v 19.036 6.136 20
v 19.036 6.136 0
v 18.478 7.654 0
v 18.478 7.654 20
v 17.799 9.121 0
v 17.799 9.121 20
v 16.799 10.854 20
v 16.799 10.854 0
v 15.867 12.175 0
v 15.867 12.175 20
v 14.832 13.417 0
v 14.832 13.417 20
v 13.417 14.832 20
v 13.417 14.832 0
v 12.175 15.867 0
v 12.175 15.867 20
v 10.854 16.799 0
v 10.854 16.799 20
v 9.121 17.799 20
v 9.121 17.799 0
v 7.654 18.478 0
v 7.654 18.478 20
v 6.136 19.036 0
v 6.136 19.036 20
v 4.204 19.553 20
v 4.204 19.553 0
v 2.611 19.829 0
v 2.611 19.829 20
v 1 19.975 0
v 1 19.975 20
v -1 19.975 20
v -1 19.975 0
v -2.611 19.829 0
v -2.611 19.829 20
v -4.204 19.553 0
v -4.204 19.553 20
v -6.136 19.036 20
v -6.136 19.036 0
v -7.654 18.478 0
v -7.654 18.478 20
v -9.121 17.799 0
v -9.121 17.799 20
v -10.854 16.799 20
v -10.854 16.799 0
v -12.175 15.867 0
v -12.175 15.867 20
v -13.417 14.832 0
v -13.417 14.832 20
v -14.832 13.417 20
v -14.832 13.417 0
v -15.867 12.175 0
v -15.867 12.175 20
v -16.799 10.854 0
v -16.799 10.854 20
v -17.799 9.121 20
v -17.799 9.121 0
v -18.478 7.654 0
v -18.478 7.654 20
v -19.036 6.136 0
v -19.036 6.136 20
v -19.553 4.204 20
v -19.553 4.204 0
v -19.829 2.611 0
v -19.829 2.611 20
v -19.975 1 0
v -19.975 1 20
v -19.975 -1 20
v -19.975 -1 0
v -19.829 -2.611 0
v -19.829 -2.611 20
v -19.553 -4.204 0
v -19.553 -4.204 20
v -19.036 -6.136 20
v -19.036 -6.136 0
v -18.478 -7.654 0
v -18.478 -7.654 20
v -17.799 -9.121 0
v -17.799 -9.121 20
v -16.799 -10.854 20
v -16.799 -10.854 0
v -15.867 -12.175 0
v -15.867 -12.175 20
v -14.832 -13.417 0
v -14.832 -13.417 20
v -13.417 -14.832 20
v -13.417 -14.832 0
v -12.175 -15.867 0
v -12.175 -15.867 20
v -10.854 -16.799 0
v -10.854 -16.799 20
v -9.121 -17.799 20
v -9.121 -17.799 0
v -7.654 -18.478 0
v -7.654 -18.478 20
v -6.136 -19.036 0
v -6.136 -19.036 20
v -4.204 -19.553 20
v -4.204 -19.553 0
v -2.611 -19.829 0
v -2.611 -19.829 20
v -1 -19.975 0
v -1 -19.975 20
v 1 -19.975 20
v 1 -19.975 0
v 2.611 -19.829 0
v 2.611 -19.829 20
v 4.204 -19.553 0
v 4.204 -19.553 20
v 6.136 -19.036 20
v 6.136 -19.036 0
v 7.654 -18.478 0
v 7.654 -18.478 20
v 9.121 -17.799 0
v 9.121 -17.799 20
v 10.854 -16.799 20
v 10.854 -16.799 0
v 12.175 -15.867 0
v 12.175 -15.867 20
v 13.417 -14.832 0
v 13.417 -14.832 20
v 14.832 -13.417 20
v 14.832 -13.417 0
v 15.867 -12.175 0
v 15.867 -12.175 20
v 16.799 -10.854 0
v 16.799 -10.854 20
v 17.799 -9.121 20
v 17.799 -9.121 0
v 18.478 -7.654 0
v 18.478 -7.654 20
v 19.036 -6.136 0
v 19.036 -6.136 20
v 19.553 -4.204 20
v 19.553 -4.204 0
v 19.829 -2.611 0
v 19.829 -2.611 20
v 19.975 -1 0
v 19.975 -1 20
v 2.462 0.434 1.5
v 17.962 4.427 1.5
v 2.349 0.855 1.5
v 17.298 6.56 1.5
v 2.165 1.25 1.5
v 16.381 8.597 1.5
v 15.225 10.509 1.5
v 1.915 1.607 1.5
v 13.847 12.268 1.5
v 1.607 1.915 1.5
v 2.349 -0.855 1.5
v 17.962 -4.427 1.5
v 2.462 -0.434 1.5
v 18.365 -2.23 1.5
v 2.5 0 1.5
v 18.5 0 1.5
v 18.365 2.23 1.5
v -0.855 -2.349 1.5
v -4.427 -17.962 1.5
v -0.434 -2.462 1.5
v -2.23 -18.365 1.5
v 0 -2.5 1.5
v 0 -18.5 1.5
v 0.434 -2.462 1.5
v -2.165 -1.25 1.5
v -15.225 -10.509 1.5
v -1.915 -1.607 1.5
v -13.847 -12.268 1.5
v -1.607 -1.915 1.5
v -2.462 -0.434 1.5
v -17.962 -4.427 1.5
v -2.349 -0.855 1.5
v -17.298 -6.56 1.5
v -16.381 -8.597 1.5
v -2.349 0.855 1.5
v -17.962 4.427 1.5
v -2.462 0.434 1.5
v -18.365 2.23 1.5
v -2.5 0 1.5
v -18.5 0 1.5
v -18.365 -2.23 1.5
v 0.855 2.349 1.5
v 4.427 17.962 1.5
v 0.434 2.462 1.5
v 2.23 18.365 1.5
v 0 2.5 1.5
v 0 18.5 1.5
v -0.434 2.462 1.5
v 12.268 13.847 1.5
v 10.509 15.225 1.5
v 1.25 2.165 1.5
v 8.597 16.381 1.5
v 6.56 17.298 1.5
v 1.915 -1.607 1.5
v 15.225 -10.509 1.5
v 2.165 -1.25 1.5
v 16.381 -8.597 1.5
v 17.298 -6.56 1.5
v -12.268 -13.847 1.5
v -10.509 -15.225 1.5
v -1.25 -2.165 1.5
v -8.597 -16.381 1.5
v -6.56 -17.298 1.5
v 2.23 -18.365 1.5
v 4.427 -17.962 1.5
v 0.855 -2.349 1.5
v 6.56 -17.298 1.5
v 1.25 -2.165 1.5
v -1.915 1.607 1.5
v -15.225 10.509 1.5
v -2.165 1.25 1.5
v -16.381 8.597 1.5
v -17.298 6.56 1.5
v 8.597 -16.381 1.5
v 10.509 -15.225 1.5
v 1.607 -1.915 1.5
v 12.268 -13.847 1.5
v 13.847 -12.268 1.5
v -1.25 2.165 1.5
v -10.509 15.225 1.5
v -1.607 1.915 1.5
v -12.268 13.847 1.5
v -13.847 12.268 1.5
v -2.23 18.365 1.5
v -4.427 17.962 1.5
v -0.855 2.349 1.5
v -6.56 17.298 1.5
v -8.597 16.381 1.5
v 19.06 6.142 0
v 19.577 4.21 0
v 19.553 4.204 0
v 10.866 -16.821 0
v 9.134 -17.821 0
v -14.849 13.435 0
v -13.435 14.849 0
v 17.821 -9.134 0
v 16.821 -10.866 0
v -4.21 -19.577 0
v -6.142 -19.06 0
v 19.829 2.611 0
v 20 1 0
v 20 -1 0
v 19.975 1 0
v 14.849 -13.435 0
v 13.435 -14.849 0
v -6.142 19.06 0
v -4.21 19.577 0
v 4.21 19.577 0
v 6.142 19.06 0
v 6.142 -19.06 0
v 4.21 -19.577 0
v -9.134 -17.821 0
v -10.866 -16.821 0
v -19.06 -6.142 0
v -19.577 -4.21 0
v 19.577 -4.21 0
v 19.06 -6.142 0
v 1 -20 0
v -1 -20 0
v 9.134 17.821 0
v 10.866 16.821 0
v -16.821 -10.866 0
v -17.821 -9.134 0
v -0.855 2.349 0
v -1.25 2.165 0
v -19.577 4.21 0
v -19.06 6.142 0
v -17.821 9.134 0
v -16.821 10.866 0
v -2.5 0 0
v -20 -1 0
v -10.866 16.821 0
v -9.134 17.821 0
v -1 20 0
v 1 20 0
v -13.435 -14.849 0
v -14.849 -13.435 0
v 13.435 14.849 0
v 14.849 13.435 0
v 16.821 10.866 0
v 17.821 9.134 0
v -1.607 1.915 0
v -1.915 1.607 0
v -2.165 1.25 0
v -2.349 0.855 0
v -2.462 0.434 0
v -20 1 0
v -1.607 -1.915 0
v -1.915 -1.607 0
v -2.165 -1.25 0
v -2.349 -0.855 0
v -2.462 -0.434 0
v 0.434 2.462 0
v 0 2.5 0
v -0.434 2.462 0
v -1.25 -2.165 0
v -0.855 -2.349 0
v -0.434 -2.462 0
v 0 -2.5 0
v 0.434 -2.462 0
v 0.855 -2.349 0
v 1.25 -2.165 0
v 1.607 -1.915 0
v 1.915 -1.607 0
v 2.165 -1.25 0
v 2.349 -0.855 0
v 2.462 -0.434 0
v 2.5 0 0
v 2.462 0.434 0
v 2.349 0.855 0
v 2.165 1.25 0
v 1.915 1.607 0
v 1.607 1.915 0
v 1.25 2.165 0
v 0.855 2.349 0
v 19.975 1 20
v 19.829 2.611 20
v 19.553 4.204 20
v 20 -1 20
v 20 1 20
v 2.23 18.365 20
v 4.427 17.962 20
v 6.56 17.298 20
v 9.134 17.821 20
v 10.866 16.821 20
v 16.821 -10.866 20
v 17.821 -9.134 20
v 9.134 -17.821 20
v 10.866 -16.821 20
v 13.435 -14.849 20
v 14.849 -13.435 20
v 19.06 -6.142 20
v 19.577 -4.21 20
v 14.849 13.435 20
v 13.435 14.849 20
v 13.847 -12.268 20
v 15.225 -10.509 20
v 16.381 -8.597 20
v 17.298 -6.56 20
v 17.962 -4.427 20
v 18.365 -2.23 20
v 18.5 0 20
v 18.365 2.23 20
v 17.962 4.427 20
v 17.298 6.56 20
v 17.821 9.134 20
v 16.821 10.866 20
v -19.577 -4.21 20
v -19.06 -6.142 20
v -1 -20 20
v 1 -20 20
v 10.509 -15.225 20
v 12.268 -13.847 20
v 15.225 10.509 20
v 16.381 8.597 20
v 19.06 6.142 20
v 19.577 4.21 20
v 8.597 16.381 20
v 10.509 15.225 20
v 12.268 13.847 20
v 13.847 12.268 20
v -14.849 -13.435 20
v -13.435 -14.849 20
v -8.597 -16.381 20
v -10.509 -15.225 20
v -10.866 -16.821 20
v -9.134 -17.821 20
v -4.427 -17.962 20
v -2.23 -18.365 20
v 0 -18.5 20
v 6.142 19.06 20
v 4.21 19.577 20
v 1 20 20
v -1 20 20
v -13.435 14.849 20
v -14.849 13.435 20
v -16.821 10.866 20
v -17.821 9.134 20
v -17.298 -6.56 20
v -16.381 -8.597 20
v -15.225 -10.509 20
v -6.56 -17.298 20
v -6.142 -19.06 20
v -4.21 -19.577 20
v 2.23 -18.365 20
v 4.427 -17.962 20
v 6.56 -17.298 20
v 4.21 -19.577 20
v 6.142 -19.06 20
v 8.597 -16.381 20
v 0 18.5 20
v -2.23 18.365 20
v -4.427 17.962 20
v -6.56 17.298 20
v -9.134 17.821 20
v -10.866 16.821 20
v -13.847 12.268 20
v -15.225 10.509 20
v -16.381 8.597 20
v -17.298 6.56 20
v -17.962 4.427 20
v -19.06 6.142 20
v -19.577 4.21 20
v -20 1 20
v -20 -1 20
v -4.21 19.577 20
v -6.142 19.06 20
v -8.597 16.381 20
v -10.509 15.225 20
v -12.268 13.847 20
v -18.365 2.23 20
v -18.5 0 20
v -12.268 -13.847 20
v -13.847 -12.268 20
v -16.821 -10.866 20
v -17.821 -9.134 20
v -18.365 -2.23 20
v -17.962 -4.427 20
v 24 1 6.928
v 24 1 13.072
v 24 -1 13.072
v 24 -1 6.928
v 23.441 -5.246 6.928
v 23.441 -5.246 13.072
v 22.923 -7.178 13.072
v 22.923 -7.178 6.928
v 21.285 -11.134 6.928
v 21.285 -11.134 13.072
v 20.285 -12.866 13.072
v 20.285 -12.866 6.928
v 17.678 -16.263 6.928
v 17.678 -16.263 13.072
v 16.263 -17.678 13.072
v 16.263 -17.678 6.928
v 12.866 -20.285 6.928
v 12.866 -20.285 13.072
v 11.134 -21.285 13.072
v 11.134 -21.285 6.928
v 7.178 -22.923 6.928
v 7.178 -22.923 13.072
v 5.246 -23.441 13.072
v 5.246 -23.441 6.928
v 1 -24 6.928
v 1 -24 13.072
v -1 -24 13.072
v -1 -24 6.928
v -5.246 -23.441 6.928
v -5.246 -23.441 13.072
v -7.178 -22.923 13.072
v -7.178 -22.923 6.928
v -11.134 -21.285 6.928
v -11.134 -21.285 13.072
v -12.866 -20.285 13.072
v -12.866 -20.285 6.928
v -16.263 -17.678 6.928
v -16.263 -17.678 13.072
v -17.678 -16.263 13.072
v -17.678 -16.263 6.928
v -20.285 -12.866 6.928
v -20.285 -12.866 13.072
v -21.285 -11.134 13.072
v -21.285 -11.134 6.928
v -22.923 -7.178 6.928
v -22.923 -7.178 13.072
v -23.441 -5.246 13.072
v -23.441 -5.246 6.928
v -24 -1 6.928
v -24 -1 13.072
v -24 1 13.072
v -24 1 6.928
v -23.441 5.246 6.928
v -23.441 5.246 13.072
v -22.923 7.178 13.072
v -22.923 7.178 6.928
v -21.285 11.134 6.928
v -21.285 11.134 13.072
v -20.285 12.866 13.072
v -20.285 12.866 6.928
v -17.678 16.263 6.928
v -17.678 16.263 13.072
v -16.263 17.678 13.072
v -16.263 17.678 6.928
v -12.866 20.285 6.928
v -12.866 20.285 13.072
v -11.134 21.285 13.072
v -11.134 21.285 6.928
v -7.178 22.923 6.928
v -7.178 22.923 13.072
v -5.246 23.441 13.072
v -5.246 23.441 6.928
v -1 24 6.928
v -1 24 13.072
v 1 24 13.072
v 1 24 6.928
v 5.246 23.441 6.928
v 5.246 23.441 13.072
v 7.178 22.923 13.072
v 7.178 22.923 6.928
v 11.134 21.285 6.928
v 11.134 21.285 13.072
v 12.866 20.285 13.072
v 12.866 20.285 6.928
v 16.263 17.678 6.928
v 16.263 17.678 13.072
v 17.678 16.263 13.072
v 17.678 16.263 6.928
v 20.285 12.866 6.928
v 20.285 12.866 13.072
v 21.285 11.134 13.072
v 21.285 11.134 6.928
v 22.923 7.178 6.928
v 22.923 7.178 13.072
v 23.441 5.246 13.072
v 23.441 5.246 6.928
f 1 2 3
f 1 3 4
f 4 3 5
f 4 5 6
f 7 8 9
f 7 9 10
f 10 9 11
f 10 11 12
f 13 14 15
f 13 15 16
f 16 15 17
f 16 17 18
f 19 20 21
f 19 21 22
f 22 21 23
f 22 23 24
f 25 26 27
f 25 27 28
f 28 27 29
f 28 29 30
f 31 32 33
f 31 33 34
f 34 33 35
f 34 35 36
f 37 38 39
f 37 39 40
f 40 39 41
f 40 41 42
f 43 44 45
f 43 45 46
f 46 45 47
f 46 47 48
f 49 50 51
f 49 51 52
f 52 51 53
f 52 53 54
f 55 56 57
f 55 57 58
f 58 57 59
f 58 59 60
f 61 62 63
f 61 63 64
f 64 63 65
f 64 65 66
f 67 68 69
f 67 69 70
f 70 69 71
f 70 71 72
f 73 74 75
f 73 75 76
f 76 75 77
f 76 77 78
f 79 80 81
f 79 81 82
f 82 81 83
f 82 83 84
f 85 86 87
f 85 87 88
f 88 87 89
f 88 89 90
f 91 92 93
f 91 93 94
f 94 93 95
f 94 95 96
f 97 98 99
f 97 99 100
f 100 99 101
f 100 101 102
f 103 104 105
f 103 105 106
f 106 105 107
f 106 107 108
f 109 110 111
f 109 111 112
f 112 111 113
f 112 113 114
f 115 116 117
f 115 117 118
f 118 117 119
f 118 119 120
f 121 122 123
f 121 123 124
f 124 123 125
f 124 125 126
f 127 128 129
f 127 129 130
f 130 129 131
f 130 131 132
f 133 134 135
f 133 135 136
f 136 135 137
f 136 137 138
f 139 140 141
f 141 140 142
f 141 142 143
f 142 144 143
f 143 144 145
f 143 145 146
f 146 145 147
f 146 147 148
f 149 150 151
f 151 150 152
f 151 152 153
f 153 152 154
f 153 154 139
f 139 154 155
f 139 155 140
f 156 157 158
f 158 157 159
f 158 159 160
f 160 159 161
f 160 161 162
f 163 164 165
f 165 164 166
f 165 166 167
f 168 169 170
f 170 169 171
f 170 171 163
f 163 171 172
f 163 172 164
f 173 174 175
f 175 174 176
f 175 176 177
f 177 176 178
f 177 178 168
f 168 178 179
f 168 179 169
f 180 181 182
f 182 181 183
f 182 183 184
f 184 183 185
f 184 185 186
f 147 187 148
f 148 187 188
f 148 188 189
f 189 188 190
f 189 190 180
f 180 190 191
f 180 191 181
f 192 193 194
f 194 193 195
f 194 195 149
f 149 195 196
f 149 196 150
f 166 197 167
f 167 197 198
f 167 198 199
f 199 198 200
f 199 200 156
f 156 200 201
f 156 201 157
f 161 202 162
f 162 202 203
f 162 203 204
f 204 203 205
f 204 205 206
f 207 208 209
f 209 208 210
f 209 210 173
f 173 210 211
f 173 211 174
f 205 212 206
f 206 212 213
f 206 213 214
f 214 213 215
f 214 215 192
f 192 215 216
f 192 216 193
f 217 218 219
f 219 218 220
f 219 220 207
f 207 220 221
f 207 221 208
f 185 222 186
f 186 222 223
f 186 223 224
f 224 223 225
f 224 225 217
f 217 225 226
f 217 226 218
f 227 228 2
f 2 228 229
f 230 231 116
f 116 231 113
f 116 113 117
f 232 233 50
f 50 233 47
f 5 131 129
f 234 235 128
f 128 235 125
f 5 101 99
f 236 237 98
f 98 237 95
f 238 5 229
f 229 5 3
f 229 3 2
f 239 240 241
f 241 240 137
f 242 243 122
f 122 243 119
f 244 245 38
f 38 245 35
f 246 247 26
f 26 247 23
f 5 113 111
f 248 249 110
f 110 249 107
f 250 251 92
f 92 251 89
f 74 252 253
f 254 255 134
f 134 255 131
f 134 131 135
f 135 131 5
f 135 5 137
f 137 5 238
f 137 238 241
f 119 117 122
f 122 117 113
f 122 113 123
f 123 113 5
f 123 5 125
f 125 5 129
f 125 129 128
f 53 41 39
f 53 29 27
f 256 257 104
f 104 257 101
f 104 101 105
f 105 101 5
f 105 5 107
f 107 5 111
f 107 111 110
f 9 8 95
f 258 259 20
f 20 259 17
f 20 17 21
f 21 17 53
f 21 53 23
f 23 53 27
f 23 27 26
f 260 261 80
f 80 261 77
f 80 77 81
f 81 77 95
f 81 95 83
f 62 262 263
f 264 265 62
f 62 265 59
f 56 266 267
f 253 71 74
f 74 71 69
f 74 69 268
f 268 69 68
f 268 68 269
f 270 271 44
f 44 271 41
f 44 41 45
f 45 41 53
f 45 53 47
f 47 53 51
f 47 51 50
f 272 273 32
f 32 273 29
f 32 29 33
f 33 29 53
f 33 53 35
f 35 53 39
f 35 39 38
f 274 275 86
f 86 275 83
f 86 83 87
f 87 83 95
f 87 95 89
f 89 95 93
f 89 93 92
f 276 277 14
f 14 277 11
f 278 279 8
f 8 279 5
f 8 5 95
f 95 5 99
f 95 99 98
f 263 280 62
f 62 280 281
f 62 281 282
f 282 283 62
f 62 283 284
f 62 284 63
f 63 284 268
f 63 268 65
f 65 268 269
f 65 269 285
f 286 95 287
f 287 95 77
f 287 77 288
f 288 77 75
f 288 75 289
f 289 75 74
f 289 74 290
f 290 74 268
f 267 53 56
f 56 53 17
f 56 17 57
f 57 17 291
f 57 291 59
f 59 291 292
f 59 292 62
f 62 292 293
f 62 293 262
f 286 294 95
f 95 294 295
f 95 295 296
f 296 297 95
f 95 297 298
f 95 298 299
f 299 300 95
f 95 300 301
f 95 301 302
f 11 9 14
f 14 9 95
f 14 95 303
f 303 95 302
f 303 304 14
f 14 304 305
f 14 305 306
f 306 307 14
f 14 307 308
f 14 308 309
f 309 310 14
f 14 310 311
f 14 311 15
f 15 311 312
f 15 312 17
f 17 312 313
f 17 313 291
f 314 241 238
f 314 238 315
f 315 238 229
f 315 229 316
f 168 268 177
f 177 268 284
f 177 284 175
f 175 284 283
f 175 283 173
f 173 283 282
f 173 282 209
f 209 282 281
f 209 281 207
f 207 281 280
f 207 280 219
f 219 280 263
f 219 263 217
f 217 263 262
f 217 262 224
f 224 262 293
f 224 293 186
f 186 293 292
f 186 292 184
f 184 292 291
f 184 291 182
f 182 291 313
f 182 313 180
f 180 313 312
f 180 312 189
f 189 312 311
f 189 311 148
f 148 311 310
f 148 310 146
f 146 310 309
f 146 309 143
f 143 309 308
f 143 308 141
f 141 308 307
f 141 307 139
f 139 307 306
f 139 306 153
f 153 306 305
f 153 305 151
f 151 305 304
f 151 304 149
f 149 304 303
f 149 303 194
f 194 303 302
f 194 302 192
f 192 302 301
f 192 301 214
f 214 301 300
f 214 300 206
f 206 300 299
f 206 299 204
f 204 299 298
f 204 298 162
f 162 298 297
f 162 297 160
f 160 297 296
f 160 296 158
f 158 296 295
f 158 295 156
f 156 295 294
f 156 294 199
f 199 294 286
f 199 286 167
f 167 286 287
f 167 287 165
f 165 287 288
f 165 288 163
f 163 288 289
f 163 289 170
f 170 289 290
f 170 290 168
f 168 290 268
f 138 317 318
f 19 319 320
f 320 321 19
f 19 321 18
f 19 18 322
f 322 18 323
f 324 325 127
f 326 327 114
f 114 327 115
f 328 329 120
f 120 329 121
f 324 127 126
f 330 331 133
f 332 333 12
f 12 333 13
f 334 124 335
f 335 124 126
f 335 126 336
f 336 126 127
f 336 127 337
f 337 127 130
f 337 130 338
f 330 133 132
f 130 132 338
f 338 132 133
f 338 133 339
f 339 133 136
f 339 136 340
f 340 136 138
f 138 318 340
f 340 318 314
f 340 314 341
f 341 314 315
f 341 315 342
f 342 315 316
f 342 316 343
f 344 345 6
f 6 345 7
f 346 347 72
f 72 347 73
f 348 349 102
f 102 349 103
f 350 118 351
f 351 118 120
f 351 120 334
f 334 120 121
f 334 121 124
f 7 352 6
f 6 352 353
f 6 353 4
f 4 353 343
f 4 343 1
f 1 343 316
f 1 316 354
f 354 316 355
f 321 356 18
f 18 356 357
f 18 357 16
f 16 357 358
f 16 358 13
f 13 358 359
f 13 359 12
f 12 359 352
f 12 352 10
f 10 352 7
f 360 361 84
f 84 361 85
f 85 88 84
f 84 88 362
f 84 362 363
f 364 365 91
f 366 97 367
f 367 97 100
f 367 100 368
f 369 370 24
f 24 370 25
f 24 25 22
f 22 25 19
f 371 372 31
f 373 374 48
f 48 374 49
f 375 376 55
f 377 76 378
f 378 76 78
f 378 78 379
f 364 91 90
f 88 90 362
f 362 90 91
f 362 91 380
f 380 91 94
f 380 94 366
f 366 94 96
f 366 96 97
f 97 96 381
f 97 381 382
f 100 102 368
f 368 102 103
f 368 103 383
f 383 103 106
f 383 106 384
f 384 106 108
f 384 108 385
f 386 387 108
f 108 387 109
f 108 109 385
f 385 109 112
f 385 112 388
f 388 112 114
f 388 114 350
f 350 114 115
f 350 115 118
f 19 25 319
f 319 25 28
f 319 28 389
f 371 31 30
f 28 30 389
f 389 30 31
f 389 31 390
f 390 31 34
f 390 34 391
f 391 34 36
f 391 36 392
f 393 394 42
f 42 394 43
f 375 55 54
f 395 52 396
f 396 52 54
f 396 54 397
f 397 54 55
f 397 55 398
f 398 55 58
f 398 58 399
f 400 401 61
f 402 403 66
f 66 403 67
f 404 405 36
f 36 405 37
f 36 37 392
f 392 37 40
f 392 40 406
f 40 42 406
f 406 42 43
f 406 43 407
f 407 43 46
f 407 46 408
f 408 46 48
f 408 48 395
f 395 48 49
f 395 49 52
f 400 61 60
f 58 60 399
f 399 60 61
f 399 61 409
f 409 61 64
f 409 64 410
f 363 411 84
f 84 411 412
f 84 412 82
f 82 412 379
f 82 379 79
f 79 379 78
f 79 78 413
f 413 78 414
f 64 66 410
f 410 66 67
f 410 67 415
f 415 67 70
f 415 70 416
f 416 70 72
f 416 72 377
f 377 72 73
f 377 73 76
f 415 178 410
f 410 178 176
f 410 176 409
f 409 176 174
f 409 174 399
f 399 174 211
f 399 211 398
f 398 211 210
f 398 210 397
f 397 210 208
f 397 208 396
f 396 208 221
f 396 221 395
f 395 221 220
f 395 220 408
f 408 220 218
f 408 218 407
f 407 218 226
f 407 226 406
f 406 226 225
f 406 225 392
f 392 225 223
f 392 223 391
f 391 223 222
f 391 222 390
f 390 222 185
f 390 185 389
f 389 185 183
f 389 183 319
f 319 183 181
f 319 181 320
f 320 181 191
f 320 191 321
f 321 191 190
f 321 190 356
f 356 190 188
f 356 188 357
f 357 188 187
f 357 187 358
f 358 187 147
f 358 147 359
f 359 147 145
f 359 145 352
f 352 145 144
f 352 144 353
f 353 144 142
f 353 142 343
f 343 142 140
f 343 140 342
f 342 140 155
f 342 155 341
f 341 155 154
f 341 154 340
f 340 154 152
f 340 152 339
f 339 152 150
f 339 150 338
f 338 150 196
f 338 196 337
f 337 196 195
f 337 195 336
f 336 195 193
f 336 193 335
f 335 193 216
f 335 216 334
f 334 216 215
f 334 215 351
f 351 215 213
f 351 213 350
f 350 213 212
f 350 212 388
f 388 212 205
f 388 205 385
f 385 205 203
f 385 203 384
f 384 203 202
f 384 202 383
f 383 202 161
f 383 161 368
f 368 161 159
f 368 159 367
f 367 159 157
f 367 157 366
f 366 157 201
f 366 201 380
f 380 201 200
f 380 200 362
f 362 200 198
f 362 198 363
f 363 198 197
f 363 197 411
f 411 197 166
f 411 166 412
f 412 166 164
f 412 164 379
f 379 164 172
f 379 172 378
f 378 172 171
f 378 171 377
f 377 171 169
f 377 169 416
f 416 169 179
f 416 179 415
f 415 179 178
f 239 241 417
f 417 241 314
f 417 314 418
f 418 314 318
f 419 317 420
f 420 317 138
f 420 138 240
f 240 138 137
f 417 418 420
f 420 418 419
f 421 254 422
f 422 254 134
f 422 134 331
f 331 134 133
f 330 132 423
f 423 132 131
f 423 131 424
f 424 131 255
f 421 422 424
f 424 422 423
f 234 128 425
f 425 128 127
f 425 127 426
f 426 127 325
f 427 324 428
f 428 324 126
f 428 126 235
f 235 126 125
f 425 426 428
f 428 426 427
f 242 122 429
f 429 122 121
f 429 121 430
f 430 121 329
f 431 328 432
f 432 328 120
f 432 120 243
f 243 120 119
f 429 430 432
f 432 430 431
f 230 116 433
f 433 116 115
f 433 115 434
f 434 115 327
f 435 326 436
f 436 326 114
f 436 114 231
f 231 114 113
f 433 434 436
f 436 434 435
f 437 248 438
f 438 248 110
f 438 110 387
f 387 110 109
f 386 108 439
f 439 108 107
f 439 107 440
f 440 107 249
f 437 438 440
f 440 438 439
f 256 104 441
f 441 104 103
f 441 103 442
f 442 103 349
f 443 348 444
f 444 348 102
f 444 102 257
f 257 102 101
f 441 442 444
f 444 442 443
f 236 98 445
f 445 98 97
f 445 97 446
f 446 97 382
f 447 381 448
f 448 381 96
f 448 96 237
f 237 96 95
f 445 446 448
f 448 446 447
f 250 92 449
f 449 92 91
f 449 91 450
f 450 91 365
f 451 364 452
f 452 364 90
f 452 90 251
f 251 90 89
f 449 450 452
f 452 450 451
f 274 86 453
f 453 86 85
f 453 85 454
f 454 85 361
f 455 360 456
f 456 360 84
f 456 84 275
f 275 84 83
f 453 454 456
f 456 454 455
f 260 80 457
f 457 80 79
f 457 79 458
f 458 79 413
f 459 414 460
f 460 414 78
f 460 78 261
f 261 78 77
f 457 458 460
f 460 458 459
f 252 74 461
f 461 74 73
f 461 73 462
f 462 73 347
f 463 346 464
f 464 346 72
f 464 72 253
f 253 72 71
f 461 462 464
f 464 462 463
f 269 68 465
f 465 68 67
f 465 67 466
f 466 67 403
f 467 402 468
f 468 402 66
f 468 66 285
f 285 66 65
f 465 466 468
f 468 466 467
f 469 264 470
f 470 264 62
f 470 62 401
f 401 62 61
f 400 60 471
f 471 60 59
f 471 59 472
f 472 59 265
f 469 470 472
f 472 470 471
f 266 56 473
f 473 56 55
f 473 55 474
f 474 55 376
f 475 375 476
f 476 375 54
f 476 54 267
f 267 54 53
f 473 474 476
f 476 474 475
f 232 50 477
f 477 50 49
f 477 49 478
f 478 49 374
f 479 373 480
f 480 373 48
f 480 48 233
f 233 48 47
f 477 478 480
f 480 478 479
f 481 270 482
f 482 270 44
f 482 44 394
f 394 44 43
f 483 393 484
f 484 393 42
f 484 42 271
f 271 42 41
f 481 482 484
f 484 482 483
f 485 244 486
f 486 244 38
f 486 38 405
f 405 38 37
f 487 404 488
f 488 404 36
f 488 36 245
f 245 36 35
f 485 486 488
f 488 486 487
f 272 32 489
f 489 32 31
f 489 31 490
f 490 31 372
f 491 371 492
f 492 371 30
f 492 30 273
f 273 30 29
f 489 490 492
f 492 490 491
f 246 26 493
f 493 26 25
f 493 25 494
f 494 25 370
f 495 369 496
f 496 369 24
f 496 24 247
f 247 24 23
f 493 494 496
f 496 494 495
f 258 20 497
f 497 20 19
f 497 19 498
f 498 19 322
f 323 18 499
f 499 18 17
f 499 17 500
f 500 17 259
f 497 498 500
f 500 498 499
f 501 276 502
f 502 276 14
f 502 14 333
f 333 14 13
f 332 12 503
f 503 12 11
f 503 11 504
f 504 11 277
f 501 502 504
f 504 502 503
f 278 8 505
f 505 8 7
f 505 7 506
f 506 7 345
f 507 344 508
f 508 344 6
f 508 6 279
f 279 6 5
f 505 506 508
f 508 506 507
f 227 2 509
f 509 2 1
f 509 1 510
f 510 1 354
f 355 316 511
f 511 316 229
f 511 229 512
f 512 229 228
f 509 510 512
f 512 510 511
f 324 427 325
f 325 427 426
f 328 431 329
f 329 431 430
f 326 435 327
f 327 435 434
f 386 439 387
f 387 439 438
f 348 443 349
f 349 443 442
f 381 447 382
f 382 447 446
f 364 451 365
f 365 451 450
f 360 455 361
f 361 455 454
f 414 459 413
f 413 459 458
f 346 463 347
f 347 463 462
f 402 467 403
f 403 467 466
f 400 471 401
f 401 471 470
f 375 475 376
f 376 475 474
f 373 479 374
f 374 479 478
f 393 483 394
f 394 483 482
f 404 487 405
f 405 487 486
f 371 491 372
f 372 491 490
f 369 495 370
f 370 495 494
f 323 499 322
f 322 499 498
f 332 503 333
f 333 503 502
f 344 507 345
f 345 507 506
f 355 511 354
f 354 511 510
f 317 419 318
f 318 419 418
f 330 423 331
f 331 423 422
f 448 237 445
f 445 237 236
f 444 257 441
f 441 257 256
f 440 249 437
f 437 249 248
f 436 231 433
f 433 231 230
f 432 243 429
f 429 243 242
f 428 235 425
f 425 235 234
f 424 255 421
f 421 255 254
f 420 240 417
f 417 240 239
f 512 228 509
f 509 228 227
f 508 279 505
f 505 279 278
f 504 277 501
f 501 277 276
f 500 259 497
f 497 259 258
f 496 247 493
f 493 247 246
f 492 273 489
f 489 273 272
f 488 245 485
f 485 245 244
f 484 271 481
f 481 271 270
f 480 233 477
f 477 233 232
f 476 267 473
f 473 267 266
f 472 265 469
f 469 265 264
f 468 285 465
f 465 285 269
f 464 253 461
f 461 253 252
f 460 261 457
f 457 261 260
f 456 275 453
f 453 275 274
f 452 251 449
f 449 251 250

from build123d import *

# Parameters (mm, degrees)
SKETCH1_R           = 20
SKETCH1_R_2         = 2.5
BOSS_EXTRUDE1_DEPTH = 1.5
SKETCH2_R           = 20
SKETCH2_R_2         = 18.5
BOSS_EXTRUDE2_DEPTH = 18.5
SKETCH4_W           = 5
SKETCH4_H           = 2
BOSS_EXTRUDE3_DEPTH = 20
CIRPATTERN2_COUNT   = 24
CHAMFER4_SIZE       = 4
CHAMFER4_SIZE2      = 6.92820323
CHAMFER5_SIZE       = 4
CHAMFER5_SIZE2      = 6.92820323


with BuildPart() as part:
    # Sketch1 → Boss-Extrude1 (new body)
    with BuildSketch(Plane.XY):
        Circle(SKETCH1_R)
        Circle(SKETCH1_R_2, mode=Mode.SUBTRACT)
    extrude(amount=BOSS_EXTRUDE1_DEPTH)

    # Sketch2 → Boss-Extrude2 (add)
    with BuildSketch(Plane.XY.offset(1.5)):
        Circle(SKETCH2_R)
        Circle(SKETCH2_R_2, mode=Mode.SUBTRACT)
    extrude(amount=BOSS_EXTRUDE2_DEPTH)

    # Sketch4 → Boss-Extrude3 (add)
    with BuildSketch(Plane(origin=(0, 0, 0), x_dir=(-1, 0, 0), z_dir=(0, 0, -1))):
        with Locations((-21.5, 0)):
            Rectangle(SKETCH4_W, SKETCH4_H)
    boss_extrude3 = extrude(amount=-BOSS_EXTRUDE3_DEPTH)

    # CirPattern2: Boss-Extrude3 ×24 about axis
    cirpattern2_axis = Axis((0, 0, 0), (0, 0, 1))
    for i in range(1, CIRPATTERN2_COUNT):
        add(boss_extrude3.rotate(cirpattern2_axis, i * 360 / CIRPATTERN2_COUNT))

    # Chamfer4
    chamfer4_edges = [part.edges().sort_by_distance(p)[0] for p in [
        (6.211657082, -23.182219831, 20),
        (0, -24, 20),
        (-6.211657082, -23.182219831, 20),
        (-12, -20.784609691, 20),
        (-16.970562748, -16.970562748, 20),
        (-20.784609691, -12, 20),
        (24, 0, 20),
        (-23.182219831, -6.211657082, 20),
        (-24, 0, 20),
        (-23.182219831, 6.211657082, 20),
        (-20.784609691, 12, 20),
        (-16.970562748, 16.970562748, 20),
        (-12, 20.784609691, 20),
        (-6.211657082, 23.182219831, 20),
        (0, 24, 20),
        (6.211657082, 23.182219831, 20),
        (12, 20.784609691, 20),
        (16.970562748, 16.970562748, 20),
        (23.182219831, -6.211657082, 20),
        (20.784609691, 12, 20),
        (23.182219831, 6.211657082, 20),
        (20.784609691, -12, 20),
        (16.970562748, -16.970562748, 20),
        (12, -20.784609691, 20),
    ]]
    chamfer4_side = [part.faces().sort_by_distance(p)[0] for p in [
        (-21.987492178, -0.32117749, 20),
    ]]
    chamfer(chamfer4_edges, length=CHAMFER4_SIZE, length2=CHAMFER4_SIZE2, reference=chamfer4_side[0])

    # Chamfer5
    chamfer5_edges = [part.edges().sort_by_distance(p)[0] for p in [
        (6.211657082, -23.182219831, 0),
        (0, -24, 0),
        (-6.211657082, -23.182219831, 0),
        (-12, -20.784609691, 0),
        (-16.970562748, -16.970562748, 0),
        (24, 0, 0),
        (-20.784609691, -12, 0),
        (-23.182219831, -6.211657082, 0),
        (-24, 0, 0),
        (-23.182219831, 6.211657082, 0),
        (-20.784609691, 12, 0),
        (-16.970562748, 16.970562748, 0),
        (-12, 20.784609691, 0),
        (-6.211657082, 23.182219831, 0),
        (0, 24, 0),
        (6.211657082, 23.182219831, 0),
        (12, 20.784609691, 0),
        (23.182219831, -6.211657082, 0),
        (16.970562748, 16.970562748, 0),
        (20.784609691, 12, 0),
        (23.182219831, 6.211657082, 0),
        (20.784609691, -12, 0),
        (16.970562748, -16.970562748, 0),
        (12, -20.784609691, 0),
    ]]
    chamfer5_side = [part.faces().sort_by_distance(p)[0] for p in [
        (-21.987492178, -0.32117749, 0),
    ]]
    chamfer(chamfer5_edges, length=CHAMFER5_SIZE, length2=CHAMFER5_SIZE2, reference=chamfer5_side[0])


solid = part.part
